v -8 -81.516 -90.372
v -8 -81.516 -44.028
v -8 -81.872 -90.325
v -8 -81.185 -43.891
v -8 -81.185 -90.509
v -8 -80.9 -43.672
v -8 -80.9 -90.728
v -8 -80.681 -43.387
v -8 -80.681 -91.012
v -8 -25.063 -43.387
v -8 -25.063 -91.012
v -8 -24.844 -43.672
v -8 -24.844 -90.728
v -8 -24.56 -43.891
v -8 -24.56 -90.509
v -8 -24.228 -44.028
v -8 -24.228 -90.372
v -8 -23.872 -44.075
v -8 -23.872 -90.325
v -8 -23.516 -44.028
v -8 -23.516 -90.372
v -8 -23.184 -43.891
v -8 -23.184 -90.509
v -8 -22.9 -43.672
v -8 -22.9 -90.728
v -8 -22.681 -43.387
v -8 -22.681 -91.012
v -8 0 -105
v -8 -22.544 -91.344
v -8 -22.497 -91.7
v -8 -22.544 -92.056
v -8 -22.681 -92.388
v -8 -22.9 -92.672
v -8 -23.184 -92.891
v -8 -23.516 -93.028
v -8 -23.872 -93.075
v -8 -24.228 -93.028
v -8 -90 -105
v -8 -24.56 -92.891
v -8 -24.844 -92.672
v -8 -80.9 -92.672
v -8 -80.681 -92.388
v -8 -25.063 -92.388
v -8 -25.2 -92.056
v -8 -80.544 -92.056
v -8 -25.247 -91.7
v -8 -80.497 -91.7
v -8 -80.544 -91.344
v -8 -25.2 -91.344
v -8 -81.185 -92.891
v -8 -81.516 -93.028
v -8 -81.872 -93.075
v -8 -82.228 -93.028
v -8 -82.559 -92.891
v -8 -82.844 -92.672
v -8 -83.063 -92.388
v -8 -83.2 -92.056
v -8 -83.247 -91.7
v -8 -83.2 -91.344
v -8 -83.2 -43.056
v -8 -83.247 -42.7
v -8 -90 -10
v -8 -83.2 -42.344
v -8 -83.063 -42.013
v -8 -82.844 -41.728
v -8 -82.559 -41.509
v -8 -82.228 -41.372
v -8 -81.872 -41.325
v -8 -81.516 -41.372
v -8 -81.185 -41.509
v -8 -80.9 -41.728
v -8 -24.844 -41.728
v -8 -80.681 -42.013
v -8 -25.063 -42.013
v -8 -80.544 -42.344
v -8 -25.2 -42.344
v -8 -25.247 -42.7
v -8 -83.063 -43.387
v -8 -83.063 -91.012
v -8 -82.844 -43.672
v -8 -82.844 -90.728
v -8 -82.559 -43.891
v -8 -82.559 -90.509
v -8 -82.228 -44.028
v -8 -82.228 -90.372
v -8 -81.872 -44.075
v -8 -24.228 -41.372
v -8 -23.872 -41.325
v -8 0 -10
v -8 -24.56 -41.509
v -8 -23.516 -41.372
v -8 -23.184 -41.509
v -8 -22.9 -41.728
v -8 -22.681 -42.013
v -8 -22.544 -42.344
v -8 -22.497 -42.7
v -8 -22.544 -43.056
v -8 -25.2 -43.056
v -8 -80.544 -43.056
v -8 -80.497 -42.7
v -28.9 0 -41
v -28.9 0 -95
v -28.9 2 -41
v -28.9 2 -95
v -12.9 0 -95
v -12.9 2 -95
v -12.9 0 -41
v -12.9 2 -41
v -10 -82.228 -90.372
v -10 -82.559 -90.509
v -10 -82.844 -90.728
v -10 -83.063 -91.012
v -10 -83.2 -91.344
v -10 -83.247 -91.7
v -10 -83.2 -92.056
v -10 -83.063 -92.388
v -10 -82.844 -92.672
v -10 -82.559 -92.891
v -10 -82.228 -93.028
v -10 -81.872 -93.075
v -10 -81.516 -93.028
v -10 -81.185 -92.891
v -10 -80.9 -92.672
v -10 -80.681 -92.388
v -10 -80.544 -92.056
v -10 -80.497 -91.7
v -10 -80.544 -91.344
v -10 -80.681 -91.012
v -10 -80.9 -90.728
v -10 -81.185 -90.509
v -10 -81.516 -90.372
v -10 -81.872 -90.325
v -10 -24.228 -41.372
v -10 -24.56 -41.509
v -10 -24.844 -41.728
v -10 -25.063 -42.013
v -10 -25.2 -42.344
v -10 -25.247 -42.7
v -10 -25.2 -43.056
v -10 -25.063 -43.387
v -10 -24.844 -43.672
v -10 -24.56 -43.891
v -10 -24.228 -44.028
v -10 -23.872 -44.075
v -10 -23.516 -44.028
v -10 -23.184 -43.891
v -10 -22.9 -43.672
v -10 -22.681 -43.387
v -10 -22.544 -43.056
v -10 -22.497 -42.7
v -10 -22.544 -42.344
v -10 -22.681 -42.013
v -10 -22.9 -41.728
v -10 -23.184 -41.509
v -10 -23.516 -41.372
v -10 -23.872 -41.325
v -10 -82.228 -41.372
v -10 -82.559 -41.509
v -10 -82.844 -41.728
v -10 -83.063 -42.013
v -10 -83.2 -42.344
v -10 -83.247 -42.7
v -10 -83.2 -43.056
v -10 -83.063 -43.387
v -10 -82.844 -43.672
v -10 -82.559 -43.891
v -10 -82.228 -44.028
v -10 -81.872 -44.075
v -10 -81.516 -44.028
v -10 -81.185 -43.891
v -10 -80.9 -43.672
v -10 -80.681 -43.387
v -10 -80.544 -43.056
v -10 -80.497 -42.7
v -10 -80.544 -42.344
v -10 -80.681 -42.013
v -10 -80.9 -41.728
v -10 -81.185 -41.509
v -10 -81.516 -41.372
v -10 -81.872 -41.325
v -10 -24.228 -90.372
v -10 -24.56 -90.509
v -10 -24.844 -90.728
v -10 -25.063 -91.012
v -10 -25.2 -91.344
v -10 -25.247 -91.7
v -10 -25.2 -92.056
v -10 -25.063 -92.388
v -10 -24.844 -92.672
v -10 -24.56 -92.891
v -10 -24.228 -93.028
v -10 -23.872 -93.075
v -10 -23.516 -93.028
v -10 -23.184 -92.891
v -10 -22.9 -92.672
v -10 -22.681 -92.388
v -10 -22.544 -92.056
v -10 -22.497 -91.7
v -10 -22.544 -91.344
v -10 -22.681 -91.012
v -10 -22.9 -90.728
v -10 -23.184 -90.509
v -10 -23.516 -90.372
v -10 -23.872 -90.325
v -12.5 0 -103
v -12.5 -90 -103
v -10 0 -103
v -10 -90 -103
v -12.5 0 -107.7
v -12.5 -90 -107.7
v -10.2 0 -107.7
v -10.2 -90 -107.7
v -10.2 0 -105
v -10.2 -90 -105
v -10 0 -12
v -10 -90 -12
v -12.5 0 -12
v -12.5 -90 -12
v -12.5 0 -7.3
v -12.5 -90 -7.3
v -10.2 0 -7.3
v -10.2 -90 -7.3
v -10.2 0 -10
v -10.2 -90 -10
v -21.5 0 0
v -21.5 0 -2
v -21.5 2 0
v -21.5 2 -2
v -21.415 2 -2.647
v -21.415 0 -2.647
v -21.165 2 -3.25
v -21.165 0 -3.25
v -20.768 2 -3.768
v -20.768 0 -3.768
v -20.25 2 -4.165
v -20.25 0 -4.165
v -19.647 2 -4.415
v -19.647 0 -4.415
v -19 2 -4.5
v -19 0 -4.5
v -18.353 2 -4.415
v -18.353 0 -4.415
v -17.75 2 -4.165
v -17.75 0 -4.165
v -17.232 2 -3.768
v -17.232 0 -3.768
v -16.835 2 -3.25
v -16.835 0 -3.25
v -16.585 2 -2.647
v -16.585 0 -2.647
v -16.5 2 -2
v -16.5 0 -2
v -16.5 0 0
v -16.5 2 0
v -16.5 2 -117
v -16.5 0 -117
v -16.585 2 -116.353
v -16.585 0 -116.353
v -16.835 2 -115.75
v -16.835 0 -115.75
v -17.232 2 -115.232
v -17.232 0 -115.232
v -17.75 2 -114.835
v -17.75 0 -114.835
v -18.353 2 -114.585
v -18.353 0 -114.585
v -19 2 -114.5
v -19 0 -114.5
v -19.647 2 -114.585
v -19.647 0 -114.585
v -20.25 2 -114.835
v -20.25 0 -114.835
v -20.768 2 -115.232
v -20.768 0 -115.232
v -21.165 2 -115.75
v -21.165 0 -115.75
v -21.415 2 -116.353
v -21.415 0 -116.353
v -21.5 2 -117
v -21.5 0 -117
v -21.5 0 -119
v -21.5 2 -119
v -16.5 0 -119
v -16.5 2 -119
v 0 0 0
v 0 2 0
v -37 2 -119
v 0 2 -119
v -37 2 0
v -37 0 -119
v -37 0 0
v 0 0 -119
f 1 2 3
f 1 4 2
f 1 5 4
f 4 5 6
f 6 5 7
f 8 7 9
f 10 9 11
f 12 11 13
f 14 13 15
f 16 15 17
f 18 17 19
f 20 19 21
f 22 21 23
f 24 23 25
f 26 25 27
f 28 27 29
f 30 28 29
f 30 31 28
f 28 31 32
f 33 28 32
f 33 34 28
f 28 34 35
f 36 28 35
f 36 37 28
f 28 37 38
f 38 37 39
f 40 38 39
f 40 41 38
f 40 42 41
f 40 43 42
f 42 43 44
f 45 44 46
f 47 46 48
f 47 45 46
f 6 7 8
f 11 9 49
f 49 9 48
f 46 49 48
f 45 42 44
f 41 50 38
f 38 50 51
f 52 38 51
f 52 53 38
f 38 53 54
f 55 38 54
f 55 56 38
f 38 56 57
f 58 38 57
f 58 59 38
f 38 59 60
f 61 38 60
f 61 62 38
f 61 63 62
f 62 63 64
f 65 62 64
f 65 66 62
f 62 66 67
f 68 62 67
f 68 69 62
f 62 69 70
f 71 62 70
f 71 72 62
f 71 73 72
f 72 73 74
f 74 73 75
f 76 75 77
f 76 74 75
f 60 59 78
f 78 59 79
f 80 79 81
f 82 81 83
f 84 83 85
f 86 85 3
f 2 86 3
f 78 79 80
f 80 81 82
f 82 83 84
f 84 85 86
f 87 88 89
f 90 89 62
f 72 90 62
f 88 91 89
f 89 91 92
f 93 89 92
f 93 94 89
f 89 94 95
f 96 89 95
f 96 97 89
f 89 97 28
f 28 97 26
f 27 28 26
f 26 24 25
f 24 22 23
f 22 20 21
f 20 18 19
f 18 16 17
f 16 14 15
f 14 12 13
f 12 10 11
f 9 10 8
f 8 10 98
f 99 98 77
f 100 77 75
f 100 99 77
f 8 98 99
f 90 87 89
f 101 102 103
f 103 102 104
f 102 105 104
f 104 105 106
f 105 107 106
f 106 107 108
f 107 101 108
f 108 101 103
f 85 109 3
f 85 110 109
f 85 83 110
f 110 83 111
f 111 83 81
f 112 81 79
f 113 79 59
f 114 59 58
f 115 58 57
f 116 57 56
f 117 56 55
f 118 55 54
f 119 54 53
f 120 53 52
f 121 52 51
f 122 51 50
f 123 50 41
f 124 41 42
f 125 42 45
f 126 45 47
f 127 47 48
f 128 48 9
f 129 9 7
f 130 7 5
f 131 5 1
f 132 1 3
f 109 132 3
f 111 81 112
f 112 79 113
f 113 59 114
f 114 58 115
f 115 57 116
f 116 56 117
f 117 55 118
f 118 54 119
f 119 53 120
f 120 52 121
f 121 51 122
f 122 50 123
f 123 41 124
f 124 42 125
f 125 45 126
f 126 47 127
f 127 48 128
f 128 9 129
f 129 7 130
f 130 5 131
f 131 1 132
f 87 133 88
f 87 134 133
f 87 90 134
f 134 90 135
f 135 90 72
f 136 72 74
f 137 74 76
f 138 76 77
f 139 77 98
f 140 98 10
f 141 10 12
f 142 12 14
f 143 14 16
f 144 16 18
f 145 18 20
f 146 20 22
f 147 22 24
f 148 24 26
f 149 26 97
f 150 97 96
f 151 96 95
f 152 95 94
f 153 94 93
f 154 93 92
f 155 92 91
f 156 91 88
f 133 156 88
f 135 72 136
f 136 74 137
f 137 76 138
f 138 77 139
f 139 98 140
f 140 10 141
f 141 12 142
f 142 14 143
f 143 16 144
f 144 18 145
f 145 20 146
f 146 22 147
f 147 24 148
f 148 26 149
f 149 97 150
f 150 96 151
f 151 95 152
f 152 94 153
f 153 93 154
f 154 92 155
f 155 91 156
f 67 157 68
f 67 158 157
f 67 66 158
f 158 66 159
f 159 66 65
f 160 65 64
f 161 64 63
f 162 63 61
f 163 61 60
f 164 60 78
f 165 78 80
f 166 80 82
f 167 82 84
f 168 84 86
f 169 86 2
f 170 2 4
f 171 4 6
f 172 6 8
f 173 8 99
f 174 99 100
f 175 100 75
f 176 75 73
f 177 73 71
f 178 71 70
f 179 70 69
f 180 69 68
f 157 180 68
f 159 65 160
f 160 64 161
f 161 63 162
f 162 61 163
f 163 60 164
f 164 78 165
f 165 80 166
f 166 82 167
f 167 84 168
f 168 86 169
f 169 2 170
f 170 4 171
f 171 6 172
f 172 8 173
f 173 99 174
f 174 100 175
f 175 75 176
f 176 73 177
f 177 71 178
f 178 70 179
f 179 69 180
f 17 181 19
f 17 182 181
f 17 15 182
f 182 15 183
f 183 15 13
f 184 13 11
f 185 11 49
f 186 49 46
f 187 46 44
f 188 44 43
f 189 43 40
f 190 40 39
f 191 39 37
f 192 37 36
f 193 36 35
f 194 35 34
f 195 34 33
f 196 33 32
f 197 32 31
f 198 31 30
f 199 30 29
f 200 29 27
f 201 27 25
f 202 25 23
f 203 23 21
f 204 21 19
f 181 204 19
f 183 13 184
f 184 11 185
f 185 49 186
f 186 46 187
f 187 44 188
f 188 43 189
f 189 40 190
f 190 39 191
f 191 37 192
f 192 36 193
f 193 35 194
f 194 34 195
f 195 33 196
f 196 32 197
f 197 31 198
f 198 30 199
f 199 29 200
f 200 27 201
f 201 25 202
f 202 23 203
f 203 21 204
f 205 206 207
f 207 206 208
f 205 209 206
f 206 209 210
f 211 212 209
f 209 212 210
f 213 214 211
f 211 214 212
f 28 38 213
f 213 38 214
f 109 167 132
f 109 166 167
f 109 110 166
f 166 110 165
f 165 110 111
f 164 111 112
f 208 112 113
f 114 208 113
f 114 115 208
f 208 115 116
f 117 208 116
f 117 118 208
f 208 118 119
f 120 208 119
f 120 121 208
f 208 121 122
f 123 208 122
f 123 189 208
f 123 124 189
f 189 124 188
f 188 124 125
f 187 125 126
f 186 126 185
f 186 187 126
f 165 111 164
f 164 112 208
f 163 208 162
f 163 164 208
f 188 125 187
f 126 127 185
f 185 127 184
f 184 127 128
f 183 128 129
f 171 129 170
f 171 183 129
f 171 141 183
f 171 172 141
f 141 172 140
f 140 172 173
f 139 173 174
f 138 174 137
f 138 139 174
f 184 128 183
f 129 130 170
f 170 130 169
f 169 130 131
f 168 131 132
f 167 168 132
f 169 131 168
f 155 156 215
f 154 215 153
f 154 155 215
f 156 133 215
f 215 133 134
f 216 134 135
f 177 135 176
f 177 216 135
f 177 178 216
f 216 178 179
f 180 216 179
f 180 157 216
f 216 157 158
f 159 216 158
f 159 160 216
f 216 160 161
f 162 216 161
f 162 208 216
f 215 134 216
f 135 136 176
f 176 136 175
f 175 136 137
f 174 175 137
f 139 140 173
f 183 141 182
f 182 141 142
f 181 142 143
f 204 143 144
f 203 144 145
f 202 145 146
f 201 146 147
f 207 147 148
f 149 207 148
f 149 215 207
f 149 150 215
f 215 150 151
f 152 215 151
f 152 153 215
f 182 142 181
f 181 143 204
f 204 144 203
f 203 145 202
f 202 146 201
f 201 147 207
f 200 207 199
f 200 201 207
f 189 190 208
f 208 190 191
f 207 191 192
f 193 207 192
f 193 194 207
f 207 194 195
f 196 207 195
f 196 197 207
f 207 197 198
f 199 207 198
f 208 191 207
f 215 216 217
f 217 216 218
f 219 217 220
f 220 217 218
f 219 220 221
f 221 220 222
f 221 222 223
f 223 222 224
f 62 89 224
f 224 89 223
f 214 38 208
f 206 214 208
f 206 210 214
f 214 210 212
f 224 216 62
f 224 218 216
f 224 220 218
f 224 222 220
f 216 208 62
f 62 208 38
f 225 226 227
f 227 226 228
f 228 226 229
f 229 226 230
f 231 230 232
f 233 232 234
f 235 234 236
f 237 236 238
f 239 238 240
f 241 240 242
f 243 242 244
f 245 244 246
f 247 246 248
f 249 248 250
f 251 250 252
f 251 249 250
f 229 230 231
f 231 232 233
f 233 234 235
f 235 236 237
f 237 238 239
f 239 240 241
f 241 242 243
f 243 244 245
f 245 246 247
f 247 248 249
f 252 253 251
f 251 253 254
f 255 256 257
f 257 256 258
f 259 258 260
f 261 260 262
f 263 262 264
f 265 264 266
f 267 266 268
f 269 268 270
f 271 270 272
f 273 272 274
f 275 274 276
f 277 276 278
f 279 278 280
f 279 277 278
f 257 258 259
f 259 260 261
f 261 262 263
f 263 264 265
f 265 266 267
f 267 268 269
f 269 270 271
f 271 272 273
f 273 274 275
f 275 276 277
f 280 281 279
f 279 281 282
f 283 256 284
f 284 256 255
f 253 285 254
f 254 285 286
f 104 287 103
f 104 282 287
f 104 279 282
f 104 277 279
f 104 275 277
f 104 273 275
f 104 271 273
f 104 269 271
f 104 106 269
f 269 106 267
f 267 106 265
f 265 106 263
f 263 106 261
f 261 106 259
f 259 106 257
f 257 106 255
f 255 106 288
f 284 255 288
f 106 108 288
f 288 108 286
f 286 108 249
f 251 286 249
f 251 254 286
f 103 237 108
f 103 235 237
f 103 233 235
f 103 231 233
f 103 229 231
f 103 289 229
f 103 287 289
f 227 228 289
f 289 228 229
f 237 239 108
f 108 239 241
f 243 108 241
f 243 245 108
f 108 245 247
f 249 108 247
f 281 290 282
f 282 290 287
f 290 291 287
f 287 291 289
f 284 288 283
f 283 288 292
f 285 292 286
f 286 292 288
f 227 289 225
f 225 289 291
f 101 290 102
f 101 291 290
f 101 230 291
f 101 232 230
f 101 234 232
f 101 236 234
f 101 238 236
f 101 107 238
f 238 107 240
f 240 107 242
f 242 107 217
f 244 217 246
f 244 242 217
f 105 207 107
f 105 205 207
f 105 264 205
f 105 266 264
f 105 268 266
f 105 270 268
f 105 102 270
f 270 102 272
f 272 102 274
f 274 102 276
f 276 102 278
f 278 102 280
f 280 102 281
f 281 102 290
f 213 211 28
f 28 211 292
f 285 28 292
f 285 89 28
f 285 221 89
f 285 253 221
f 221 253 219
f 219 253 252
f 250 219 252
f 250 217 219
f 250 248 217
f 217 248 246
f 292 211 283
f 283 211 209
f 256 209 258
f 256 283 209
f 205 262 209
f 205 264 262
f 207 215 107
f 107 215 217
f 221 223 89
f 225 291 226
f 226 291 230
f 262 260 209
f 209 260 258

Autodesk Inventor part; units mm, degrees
ref_plane "YZ Plane" through (0, 0, 0) normal (1, 0, 0) x (0, 1, 0)
ref_plane "XZ Plane" through (0, 0, 0) normal (0, 1, 0) x (-1, 0, 0)
ref_plane "XY Plane" through (0, 0, 0) normal (0, 0, 1) x (1, 0, 0)
sketch "Sketch1" plane through (0, 0, 0) normal (0, 1, 0) x (-1, 0, 0)
  line L0 (0, 0) -> (37, 0)
  line L1 (37, 0) -> (37, -119)
  line L2 (37, -119) -> (0, -119)
  line L3 (0, -119) -> (0, 0)
  dimension "d0" = 37
  dimension "d1" = 119
extrude "Extrusion1" add sketch "Sketch1" along normal blind 2
sketch "Sketch3" plane through (0, 0, 0) normal (0, -1, 0) x (1, 0, 0)
  line L0 (0, 0) -> (-16.5, 0)
  line L1 (-37, 0) -> (0, 0) projected
  line L2 (-19, 0) -> (-19, -2)
  arc A0 (-21.5, -2) -> (-16.5, -2) centre (-19, -2) ccw
  line L3 (0, 0) -> (0, -119) projected
  line L4 (0, -119) -> (-19, -119)
  line L5 (0, -119) -> (-37, -119) projected
  line L6 (-19, -119) -> (-19, -117)
  arc A1 (-16.5, -117) -> (-21.5, -117) centre (-19, -117) ccw
  line L7 (-16.5, -117) -> (-16.5, -119)
  line L8 (-21.5, -117) -> (-21.5, -119)
  line L9 (-21.5, -119) -> (-16.5, -119)
  line L10 (-21.5, -2) -> (-21.5, 0)
  line L11 (-16.5, -2) -> (-16.5, 0)
  line L12 (-21.5, 0) -> (-16.5, 0)
  dimension "d14" = 19
  dimension "d15" = 2
  dimension "d16" = 5
  dimension "d17" = 19
  dimension "d18" = 2
  dimension "d19" = 5
extrude "Extrusion3" cut sketch "Sketch3" against normal blind 2
sketch "Sketch4" plane through (0, 2, 0) normal (0, 1, 0) x (1, 0, 0)
  line L0 (0, 119) -> (0, 0) projected
  line L1 (0, 0) -> (0, 10)
  line L2 (0, 10) -> (-6, 10)
  line L3 (-32, 10) -> (-32, 105)
  line L4 (-6, 105) -> (-6, 10)
  line L5 (-6, 10) -> (-12.1, 10)
  line L6 (-6, 105) -> (-10.2, 105)
  line L7 (-10.2, 105) -> (-12.1, 105)
  line L8 (-12.5, 105) -> (-12.5, 107.7)
  line L9 (-12.5, 107.7) -> (-10.2, 107.7)
  line L10 (-10.2, 107.7) -> (-10.2, 105)
  line L11 (-6, 10) -> (-8, 10)
  line L12 (-8, 10) -> (-8, 105)
  line L13 (-12.5, 105) -> (-12.5, 103)
  line L14 (-12.5, 103) -> (-10, 103)
  line L15 (-10, 103) -> (-10, 12)
  line L16 (-6, 10) -> (-12.1, 10)
  line L17 (-15.4, 10) -> (-32, 10)
  line L18 (-32, 105) -> (-12.5, 105)
  line L19 (-10.2, 105) -> (-6, 105)
  line L20 (-10, 12) -> (-12.5, 12)
  line L21 (-12.5, 12) -> (-12.5, 10)
  line L22 (-12.5, 10) -> (-12.5, 7.3)
  line L23 (-12.5, 7.3) -> (-10.2, 7.3)
  line L24 (-10.2, 7.3) -> (-10.2, 10)
  line L25 (-15.4, 10) -> (-12.5, 10)
  point P0 (-19, 2)
  dimension "d59" = 10
  dimension "d60" = 6
  dimension "d61" = 26
  dimension "d62" = 95
  dimension "d66" = 4.2
  dimension "d67" = 2.3
  dimension "d73" = 2
  dimension "d76" = 2.5
  dimension "d101" = 2.5
  dimension "d102" = 2.7
  dimension "d103" = 4.5
  dimension "d106" = 2
  dimension "d107" = 2.7
  dimension "d108" = 2
  dimension "d109" = 2
  dimension "d110" = 2
extrude "Extrusion7" add sketch "Sketch4" against normal blind 92 contours L8 L9 L10 L6 L12 L5 L24 L23 L22 L21 L20 L15 L14 L13 | L6 L4 L5 L12
sketch "Sketch6" plane through (-10, -90, -103) normal (-1, 0, 0) x (0, 0, 1)
  line L0 (103, 92) -> (-16, 92) projected
  line L1 (-4.7, 92) -> (60.3, 92)
  line L2 (60.3, 92) -> (60.3, 66.128)
  circle A0 centre (60.3, 66.128) radius 1.375
  line L3 (-4.7, 90) -> (-4.7, 0) projected
  line L4 (60.3, 66.128) -> (60.3, 8.128)
  circle A1 centre (60.3, 8.128) radius 1.375
  line L5 (60.3, 8.128) -> (11.3, 8.128)
  circle A2 centre (11.3, 8.128) radius 1.375
  line L6 (11.3, 8.128) -> (11.3, 66.128)
  circle A3 centre (11.3, 66.128) radius 1.375
  point P0 (103, 90)
  dimension "d16" = 5
  dimension "d80" = 65
  dimension "d81" = 25.872
  dimension "d82" = 2.75
  dimension "d83" = 65
  dimension "d87" = 58
  dimension "d88" = 2.75
  dimension "d89" = 49
  dimension "d90" = 2.75
  dimension "d91" = 2.75
extrude "Extrusion8" cut sketch "Sketch6" against normal blind 2
sketch "Sketch7" plane through (0, 0, 0) normal (0, -1, 0) x (1, 0, 0)
  line L0 (-10, -103) -> (-10, -12) projected
  line L1 (-10, -103) -> (-10, -41)
  line L2 (-10, -41) -> (-12.9, -41)
  line L3 (-12.9, -41) -> (-28.9, -41)
  line L4 (-28.9, -41) -> (-28.9, -95)
  line L5 (-28.9, -95) -> (-12.9, -95)
  line L6 (-12.9, -95) -> (-12.9, -41)
  point P0 (0, 0)
  dimension "d94" = 62
  dimension "d95" = 2.9
  dimension "d96" = 16
  dimension "d97" = 54
extrude "Extrusion9" cut sketch "Sketch7" against normal blind 2
sketch "Sketch8" plane through (-6, -90, -10) normal (1, 0, 0) x (0, 0, -1)
  line L0 (0, 90) -> (0, 0) projected
  line L1 (95, 90) -> (95, 0) projected
  line L2 (0, 0) -> (95, 0)
  line L3 (95, 0) -> (95, 90)
  line L4 (95, 90) -> (0, 90)
  line L5 (0, 90) -> (0, 0)
  point P0 (-10, 90)
extrude "Extrusion10" cut sketch "Sketch8" against normal blind 2
properties part number "Slot"
